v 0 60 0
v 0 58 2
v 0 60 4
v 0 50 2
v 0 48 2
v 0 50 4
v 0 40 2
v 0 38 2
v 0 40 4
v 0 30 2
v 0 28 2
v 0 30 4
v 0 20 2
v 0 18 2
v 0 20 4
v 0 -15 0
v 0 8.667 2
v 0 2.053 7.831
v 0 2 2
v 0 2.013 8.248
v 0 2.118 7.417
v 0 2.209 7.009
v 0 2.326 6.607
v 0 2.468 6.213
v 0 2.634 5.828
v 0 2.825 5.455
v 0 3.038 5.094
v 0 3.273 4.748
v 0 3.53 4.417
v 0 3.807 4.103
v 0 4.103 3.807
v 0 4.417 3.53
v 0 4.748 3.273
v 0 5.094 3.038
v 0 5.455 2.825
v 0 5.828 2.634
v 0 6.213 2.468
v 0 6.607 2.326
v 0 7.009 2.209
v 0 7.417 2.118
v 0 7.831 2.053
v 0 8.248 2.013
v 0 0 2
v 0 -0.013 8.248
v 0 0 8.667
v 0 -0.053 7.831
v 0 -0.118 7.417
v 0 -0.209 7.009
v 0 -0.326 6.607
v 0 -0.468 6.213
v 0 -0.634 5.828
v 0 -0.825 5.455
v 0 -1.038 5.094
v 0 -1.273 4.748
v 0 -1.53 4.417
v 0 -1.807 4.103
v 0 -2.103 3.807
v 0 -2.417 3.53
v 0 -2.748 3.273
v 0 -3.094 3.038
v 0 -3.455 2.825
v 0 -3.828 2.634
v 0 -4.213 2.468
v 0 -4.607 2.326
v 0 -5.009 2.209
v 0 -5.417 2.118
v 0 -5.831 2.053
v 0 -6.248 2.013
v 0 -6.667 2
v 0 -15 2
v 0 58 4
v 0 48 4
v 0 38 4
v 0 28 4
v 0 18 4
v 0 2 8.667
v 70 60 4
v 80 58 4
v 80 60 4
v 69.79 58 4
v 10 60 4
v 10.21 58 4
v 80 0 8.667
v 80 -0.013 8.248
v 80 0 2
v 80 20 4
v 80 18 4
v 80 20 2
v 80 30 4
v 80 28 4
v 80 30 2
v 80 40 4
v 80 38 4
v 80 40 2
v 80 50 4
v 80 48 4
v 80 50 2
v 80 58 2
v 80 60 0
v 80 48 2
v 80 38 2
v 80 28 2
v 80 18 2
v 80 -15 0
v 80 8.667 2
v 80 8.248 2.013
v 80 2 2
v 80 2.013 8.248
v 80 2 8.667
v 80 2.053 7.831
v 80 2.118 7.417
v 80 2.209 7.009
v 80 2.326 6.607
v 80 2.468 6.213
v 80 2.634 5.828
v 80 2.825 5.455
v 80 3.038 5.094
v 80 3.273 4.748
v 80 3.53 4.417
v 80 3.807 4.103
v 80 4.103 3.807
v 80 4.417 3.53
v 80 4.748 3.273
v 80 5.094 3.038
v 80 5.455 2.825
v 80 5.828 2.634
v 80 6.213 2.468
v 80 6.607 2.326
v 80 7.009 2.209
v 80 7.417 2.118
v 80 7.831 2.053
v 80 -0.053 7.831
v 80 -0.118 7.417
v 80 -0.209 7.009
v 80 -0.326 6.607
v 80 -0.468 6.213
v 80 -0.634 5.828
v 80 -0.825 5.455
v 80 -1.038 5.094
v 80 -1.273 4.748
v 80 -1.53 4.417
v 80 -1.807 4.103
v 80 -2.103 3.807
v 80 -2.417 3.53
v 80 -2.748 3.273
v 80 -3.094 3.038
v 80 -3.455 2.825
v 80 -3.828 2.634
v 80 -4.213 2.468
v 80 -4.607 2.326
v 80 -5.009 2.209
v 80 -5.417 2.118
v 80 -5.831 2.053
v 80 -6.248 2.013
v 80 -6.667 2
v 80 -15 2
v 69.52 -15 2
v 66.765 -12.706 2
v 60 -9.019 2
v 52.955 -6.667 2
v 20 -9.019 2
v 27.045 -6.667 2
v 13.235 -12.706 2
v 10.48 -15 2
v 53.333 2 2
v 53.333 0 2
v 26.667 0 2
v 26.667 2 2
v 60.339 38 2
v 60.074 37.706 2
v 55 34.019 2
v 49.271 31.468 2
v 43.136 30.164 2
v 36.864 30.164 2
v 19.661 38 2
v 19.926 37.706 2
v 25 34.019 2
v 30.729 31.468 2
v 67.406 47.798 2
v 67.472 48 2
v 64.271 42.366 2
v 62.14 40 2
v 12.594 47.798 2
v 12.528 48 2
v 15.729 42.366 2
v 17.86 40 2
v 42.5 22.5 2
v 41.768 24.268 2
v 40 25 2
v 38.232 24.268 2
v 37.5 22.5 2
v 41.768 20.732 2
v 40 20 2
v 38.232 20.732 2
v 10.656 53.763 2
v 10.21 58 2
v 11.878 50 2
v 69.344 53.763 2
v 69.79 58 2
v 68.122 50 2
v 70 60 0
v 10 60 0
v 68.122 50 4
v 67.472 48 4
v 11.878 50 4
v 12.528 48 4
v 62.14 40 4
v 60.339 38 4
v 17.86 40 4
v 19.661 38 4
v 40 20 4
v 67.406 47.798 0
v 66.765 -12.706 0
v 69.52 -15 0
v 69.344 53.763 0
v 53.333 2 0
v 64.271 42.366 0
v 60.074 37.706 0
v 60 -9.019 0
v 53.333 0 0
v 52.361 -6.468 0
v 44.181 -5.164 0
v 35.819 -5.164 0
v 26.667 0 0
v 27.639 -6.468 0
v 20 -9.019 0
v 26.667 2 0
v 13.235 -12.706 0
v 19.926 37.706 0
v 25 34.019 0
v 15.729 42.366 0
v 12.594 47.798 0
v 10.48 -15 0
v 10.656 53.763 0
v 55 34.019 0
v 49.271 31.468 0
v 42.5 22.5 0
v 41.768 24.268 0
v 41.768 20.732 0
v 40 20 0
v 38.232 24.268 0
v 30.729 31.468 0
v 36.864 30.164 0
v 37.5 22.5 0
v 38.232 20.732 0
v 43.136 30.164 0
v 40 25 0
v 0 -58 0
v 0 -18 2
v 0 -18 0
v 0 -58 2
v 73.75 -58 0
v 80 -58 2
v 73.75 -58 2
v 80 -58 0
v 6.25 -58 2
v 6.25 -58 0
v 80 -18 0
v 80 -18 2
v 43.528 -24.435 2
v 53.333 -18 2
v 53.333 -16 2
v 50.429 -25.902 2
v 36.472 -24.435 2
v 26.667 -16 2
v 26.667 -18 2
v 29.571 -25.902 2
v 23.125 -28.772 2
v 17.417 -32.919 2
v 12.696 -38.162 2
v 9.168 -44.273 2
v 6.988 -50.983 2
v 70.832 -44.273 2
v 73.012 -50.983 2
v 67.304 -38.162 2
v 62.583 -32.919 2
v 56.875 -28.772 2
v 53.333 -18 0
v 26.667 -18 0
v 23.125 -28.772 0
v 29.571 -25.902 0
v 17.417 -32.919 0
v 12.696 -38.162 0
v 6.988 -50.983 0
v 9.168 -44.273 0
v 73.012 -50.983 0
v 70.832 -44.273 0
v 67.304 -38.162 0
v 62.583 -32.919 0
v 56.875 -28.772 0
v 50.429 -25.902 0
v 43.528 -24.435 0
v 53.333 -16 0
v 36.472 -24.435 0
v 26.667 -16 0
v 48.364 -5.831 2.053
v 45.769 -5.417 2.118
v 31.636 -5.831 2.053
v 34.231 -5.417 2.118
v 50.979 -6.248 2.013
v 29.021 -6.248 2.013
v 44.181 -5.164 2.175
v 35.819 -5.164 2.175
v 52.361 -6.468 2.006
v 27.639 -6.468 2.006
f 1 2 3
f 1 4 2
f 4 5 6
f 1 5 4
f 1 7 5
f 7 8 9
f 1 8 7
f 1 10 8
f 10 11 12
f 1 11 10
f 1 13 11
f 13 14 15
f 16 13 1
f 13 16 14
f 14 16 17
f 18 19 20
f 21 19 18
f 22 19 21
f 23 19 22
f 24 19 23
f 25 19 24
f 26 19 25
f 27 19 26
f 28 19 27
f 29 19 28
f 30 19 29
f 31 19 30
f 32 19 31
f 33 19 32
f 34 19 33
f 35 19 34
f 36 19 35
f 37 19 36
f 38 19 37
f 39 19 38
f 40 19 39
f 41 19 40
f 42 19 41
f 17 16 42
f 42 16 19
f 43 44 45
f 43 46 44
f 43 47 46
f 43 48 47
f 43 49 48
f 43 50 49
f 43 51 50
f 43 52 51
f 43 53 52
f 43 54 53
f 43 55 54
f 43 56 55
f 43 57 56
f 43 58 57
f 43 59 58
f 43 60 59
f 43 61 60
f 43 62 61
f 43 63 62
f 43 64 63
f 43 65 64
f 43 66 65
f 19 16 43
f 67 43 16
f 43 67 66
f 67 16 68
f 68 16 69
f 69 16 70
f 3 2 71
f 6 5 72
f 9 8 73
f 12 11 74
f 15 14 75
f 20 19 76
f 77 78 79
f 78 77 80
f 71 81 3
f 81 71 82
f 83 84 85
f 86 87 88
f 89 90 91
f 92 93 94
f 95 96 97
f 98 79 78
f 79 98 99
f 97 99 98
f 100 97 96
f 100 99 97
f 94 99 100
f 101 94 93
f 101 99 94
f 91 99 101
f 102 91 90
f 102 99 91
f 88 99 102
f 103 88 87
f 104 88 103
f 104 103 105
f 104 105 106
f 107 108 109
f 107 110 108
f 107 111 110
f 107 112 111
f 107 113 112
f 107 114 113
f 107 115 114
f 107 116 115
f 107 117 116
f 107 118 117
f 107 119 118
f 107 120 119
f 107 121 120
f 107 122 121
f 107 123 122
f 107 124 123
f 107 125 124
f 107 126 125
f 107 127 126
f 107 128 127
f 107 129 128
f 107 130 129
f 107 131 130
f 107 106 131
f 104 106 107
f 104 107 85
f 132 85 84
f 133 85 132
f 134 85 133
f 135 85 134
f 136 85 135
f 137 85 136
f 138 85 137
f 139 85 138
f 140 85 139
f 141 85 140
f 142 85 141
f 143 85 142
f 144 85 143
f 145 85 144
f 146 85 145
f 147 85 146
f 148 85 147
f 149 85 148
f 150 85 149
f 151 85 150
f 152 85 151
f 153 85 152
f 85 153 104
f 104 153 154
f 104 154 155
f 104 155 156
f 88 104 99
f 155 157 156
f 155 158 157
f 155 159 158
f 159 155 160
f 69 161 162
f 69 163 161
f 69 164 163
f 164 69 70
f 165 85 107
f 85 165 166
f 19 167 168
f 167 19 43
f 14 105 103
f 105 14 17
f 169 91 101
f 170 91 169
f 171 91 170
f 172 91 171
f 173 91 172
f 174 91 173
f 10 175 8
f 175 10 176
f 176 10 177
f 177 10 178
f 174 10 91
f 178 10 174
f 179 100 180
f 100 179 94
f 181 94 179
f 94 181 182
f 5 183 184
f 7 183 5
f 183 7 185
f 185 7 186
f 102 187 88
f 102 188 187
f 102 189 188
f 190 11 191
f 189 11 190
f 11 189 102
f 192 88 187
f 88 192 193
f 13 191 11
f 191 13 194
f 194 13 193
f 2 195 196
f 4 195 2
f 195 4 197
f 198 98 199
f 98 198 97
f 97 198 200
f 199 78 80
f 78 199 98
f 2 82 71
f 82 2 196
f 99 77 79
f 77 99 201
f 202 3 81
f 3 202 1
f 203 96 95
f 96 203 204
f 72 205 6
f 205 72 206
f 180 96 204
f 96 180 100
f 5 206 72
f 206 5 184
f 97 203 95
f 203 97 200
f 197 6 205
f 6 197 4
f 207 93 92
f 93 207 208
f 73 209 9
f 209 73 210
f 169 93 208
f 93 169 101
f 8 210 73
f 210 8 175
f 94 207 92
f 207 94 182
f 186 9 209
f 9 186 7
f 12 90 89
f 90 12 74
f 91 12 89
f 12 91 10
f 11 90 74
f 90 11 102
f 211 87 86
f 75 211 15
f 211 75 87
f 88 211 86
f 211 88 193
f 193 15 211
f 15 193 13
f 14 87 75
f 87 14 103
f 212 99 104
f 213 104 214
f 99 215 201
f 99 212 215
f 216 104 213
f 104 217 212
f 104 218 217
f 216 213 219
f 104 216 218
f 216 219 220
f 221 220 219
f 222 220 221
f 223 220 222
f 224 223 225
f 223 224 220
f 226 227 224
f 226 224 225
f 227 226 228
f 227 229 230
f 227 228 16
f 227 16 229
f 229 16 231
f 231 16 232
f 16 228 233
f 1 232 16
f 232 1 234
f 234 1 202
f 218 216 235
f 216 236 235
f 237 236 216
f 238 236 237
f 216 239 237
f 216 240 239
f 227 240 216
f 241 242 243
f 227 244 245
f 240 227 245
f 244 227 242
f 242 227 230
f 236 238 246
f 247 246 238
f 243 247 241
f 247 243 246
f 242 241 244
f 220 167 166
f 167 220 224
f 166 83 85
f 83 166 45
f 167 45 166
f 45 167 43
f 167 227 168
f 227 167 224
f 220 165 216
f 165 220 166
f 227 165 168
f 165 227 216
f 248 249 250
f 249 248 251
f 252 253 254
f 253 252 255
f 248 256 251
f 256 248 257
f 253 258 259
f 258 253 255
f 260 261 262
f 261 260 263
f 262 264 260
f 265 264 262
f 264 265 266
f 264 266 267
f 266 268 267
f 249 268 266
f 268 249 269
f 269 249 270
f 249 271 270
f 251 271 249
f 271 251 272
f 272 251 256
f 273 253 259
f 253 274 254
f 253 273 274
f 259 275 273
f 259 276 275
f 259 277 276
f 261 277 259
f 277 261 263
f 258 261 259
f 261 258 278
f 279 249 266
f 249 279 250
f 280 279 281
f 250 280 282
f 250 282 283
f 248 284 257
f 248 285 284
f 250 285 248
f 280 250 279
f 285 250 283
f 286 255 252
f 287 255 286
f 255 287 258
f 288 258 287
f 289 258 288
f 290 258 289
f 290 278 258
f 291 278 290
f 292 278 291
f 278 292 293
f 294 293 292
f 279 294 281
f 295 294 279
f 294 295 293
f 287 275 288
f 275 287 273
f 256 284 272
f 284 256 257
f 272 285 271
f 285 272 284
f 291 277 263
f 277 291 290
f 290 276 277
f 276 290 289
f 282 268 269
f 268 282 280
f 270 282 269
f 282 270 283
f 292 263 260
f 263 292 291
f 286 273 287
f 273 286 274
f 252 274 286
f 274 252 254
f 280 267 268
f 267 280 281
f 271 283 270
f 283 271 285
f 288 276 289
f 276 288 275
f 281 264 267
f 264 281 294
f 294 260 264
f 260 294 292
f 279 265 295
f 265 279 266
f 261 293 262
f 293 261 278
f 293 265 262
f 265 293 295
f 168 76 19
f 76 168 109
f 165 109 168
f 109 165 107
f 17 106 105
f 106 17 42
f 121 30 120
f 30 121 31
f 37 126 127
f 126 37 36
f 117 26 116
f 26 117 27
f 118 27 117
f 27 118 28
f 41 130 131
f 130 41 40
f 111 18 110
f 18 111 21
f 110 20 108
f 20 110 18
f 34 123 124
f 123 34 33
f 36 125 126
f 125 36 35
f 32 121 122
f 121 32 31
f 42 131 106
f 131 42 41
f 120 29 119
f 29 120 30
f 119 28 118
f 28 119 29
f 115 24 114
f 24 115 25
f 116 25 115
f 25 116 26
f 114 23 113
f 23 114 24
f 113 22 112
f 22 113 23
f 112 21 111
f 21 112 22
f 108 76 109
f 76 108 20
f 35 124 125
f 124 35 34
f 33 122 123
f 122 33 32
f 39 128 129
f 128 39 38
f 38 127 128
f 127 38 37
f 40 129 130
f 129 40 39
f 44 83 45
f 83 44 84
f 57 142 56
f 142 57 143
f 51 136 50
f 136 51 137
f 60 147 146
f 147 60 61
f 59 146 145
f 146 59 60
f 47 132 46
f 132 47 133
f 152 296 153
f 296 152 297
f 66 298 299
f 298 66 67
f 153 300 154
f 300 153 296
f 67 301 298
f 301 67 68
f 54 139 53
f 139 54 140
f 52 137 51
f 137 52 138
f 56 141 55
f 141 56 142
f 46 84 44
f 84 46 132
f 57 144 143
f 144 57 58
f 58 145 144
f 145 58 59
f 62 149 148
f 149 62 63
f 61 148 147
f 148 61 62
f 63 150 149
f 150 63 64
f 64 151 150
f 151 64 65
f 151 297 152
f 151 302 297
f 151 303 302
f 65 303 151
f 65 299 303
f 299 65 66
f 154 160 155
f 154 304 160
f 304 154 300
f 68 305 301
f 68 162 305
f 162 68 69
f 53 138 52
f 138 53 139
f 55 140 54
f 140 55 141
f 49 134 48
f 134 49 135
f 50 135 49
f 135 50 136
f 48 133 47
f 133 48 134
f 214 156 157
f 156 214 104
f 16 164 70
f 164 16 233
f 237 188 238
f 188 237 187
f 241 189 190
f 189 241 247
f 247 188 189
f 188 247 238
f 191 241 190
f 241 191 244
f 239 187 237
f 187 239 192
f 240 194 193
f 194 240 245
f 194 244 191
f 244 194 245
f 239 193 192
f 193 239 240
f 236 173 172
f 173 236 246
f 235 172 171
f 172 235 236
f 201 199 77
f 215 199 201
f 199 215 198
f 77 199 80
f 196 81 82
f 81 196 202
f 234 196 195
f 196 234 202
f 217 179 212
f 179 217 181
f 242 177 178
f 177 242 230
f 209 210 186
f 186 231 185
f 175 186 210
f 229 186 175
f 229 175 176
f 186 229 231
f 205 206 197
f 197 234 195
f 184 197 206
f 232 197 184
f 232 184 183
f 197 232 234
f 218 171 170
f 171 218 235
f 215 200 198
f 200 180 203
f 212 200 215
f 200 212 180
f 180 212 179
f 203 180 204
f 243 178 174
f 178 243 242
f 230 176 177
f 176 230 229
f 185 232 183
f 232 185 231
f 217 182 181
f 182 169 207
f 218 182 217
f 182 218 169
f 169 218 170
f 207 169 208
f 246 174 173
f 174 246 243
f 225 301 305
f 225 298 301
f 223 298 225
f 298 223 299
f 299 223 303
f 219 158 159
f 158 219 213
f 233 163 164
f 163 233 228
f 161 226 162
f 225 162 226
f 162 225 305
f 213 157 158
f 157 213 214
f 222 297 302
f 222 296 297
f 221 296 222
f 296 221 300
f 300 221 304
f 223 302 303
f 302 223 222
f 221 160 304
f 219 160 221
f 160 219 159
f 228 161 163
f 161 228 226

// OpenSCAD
/* [Dimensions] */
// Base Length
LEN_BASE = 60; // [10:100] Base Length
// Base width
WIDTH = 80; // [40:120] Base width
// Thickness of Base and Back
THICK = 2; // [1:10] Thickness of Base and Back
// height of Back
HEIGHT = 40; // [10:80] height of Back
// Number of Steps
STEPS_NO = 5;// [2:8] Number of Steps
// Strength of Steps
STRENGTH = 2; // [1:10] Strength of Steps
// Space between Steps
STEPS_SPACE = 10;// [1:10] Space between Steps
// radius of curved corners
cornerRad = 3; // radius of curved corners

// -----------------------------
// Define Modules
// -----------------------------

module body(width, length, heigth, thickness){
difference() {
cube([width,length,thickness]);//Base
translate([width/3,0,0])cube([width/3,thickness,thickness]);//Back-Base Joint
}


rotate([0,0,90])translate([THICK,-width,thickness])
corner(heigth/6,width);//Front Corner Rounding
rotate([90,0,0])cube([width,thickness,15]);//Back Stabilizer
rotate([0,270,90])translate([thickness,-width,0])
corner(heigth/6,width);//Back Corner Rounding

translate([width/2,length,0])cylinder(  thickness, d=5);//Front Indicator

translate([0,LEN_BASE,THICK])
steps(STEPS_NO,STRENGTH,STEPS_SPACE,WIDTH);
}

module body1(width, length, heigth, thickness){
translate([width/3,0,0])cube([width/3,thickness,thickness]);//Back-Base Joint    

translate([0,0,thickness])difference() {
    cube([width,thickness,heigth]);//Back
    
    translate([width/2,0,heigth])rotate([90,0,0])scale([(WIDTH-20)/40,1.5])cylinder(  10, d=45, center=true);//Back-Cut-Out
    
    };
translate([width,0,0]);  };

module steps(number, strength, space, width){
    for (i = [0 : number-1]){
   translate([0,-(strength)-space*i,0])cube([width,strength,strength]);
    }
    }

module corner(WIDTH,DEPTH){
difference() {
cube([WIDTH, DEPTH, WIDTH]);
rotate([270,0,0])translate([WIDTH,-WIDTH,0])cylinder(DEPTH, r=WIDTH, $fn=100);
}};

// -----------------------------
// Put Components together
// -----------------------------
difference() {
body(WIDTH,LEN_BASE,HEIGHT,THICK);
translate([WIDTH/2,(LEN_BASE-15)/2,THICK])cylinder(  20, d=5, center=true);// Cut Center Hole

translate([WIDTH/2,(LEN_BASE),0])scale([(WIDTH-20)/40,1.5])cylinder(  10, d=40, center=true);//Base Cut Out Front


translate([WIDTH/2,-35,0])scale([(WIDTH)/40,1.5])cylinder(  10, d=40, center=true);//Base Cut Out Back


//translate([WIDTH+10,20,0])scale([(WIDTH)/100,1.5])sphere(r = 25);//Side Left Cut Out

//translate([-10,20,0])scale([(WIDTH)/100,1.5])sphere(r = 25);//Side Right Cut Out
    }
    
rotate([90,0,0])translate([0,0,8*THICK])body1(WIDTH,LEN_BASE,HEIGHT,THICK);
    
